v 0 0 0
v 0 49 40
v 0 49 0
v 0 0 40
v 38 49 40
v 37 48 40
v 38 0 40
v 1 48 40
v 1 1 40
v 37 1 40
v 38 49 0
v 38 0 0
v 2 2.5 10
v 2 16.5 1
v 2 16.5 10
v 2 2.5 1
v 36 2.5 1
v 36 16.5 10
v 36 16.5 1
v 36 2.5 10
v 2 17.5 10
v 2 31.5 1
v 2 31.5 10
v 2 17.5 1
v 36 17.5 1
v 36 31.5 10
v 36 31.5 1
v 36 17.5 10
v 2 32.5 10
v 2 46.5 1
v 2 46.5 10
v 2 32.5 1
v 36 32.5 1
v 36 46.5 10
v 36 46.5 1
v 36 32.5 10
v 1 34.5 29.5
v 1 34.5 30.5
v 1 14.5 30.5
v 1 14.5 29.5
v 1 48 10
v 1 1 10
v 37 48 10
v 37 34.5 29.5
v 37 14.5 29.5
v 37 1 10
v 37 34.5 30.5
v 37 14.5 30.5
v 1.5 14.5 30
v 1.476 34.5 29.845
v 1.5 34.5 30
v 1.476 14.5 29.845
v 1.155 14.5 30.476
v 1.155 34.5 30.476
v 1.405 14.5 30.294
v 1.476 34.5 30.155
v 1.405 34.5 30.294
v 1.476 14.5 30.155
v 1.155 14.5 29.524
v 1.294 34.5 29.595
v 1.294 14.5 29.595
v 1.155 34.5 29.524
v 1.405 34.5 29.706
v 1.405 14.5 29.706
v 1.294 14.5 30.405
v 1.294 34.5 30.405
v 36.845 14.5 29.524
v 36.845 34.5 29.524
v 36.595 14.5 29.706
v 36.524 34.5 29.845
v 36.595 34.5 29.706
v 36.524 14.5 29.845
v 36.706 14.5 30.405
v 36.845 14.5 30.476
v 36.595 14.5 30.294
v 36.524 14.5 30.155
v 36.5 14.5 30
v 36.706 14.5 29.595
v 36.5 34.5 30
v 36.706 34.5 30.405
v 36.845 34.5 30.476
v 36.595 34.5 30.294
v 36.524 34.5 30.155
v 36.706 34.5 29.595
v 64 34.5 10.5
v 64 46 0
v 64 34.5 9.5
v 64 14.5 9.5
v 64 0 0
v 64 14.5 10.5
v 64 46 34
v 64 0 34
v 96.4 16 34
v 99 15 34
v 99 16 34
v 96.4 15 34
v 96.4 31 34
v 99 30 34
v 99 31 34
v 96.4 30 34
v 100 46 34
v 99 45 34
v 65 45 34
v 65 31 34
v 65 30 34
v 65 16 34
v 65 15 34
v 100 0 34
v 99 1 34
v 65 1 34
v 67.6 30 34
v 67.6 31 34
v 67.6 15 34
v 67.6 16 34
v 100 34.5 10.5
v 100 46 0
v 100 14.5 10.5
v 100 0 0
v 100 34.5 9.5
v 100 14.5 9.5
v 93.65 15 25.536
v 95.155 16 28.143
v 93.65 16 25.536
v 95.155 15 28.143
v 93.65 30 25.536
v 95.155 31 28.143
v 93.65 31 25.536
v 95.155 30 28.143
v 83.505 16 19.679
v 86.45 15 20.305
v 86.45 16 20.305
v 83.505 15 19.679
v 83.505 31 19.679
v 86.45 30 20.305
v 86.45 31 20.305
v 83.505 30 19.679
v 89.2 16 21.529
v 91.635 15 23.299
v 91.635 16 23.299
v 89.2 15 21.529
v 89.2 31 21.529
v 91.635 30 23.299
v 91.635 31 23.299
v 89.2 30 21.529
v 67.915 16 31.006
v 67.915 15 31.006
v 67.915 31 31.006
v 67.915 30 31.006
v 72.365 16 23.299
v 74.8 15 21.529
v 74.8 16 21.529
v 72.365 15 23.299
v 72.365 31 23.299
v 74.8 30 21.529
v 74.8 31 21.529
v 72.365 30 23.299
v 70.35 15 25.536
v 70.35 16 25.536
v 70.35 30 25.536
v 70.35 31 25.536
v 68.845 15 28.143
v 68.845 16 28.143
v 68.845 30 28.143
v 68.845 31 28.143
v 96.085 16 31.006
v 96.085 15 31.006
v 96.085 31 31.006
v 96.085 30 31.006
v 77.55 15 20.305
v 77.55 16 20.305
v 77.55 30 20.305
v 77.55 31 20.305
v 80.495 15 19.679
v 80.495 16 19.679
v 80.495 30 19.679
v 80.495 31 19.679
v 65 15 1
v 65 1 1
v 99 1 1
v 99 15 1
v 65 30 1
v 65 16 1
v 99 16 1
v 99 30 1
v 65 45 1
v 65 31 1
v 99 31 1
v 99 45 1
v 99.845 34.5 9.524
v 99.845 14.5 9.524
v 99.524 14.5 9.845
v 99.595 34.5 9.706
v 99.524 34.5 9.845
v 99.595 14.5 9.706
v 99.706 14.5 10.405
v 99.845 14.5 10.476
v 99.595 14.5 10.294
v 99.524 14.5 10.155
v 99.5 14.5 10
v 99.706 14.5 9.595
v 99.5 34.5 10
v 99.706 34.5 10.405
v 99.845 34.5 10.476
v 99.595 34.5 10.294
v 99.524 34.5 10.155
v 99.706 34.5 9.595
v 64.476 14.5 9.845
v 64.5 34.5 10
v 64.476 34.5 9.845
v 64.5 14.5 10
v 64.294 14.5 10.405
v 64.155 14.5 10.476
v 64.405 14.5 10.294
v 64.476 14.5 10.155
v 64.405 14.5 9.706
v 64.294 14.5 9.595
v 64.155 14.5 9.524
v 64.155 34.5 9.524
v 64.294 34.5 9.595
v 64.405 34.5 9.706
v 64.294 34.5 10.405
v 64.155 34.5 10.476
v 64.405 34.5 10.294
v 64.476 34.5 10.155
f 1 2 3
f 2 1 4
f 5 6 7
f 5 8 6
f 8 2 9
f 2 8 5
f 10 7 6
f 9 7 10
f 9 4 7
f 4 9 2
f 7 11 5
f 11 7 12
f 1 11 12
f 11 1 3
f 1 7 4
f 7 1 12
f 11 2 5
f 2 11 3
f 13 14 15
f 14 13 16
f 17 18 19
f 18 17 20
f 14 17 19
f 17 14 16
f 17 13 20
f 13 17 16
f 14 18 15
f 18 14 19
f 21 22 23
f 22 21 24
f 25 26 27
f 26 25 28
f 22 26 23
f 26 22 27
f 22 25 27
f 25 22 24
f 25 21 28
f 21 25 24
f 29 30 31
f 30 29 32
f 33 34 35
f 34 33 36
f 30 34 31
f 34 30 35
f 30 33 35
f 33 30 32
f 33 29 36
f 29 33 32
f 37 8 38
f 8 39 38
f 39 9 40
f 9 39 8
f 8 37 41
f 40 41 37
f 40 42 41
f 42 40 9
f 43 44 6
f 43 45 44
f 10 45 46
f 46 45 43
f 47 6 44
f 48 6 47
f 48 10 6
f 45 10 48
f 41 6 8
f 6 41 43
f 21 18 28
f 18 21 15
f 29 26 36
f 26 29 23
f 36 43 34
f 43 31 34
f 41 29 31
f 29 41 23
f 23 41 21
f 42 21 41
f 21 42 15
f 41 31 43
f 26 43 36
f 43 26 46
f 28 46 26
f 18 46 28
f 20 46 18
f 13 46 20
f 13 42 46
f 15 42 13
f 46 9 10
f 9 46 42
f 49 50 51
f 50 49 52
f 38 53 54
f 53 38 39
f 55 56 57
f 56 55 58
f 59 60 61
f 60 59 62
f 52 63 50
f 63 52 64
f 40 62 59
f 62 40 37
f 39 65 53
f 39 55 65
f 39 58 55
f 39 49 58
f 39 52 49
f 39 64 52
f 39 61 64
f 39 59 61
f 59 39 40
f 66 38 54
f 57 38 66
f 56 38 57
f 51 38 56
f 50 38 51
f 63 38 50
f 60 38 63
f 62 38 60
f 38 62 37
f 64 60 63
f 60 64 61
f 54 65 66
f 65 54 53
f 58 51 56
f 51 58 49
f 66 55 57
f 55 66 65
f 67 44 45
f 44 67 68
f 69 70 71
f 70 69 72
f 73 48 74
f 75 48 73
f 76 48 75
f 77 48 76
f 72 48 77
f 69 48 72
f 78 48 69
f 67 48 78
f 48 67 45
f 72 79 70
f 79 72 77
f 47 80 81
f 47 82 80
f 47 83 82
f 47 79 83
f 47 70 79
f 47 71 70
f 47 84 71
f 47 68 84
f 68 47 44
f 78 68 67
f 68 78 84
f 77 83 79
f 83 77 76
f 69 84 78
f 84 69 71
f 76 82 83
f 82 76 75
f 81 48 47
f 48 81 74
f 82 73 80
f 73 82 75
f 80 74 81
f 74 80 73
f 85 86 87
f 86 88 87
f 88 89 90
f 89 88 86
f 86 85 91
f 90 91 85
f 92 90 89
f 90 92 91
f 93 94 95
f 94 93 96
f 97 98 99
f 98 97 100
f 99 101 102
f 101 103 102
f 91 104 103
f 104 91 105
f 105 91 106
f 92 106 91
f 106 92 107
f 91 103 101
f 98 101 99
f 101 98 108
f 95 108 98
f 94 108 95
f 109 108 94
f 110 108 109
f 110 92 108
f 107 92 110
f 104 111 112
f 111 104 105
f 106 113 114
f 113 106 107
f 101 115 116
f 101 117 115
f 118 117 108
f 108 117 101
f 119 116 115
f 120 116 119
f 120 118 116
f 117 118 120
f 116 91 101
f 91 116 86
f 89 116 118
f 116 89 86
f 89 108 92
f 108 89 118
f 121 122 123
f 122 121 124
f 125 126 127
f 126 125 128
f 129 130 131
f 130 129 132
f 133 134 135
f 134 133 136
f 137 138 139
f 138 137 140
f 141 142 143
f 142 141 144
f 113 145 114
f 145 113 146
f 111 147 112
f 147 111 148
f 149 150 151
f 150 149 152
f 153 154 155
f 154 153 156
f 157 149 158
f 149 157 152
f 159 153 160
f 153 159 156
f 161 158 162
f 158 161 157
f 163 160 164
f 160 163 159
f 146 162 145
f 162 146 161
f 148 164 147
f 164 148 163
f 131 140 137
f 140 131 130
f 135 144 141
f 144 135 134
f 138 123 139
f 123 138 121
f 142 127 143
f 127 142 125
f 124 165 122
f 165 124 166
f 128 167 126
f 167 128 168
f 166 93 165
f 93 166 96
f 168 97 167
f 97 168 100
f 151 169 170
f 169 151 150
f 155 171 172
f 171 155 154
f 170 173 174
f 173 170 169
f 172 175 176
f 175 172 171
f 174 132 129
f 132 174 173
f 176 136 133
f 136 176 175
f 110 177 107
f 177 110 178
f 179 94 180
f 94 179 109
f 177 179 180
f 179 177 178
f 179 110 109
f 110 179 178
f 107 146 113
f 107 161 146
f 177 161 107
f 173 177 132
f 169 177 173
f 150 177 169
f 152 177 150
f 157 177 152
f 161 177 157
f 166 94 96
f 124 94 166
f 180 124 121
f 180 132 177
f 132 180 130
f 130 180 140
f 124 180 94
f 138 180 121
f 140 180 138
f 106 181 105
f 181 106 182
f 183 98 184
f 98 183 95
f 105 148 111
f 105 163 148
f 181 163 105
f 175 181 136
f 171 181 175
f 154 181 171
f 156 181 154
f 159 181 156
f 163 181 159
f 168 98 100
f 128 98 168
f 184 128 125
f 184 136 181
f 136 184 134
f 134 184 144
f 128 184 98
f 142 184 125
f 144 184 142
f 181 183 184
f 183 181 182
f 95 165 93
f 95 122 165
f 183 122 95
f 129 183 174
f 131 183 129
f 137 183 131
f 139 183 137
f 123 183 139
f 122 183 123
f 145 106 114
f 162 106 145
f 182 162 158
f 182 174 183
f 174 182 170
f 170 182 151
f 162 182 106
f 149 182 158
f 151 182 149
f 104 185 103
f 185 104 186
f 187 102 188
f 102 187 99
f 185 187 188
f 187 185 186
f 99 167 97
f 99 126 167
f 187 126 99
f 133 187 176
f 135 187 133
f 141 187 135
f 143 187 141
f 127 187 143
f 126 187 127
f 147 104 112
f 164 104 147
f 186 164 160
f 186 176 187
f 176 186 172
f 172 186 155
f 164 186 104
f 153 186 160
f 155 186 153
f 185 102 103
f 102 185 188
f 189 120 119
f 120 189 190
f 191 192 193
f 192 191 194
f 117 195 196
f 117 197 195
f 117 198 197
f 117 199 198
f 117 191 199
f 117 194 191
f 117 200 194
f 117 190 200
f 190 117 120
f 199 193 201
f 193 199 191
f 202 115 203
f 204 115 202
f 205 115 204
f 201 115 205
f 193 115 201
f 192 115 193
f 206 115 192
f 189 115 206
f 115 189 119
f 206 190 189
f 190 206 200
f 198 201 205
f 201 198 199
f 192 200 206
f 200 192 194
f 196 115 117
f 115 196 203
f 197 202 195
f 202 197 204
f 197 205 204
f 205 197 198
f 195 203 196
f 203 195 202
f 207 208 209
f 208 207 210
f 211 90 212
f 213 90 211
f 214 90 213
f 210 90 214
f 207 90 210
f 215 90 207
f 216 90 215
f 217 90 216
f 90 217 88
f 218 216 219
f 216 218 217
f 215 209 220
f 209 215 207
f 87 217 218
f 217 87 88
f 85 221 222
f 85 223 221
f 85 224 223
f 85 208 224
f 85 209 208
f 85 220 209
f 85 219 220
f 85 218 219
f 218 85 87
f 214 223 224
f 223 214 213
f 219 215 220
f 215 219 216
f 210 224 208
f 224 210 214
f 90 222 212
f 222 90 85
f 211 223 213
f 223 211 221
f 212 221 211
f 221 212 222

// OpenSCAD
/* [Dimensions] */
// Batteries Measures of 34x14x42 mm for GoPro10
// Battery depth
BATDEPTH = 14;// [10:20]
// Battery width
WIDTH = 34;//[10:60]
// Thickness of walls
THICK = 1; //[1:4]
// height of top/bottom
HEIGHT = 40; //[20:50]
// Number of batteries
BATTERY_NO = 3;//[1:8]

// Create TOP
CREATE_TOP = true;//[false:true]
// Create Bottom
CREATE_BOTTOM = true;//[false:true]

// -----------------------------
// Define Modules
// -----------------------------

module body(width, length, heigth, thickness){
difference() {
cube([width,length,heigth]);//Base
//translate([0,01,0])
    

//translate([THICK,THICK,THICK])cube([34,14,42]);
//translate([THICK,THICK+16,THICK])cube([34,14,42]);
//translate([THICK,THICK+16+16,THICK])cube([34,14,42]);


//Middle Cut Out
translate([width/2,(length/2),heigth])scale([01,1.2])rotate([90,0,0])cylinder(  length/1.5, d=width*0.8, center=true);
    }
}

module batterys(number, thick, width, depth, height){
    for (i = [0 : number-1]){
        translate([thick,thick+(i*(thick+depth)),thick])cube([width,depth,height]);
        }
    }
    
 

// -----------------------------
// Put Components together
// -----------------------------

// Top Part
if (CREATE_TOP == true){
difference() {
body(WIDTH+4*THICK,4*THICK+BATTERY_NO*(BATDEPTH+THICK),HEIGHT,THICK);

// Batteries Measures of 34x14x42 mm for GoPro10
translate([THICK,THICK*1.5,0])batterys(BATTERY_NO, THICK, WIDTH,BATDEPTH,42);    

// Outer-Joint    
translate([THICK*1.0,THICK*1.0,HEIGHT/4])cube([WIDTH+THICK*2,THICK*2+BATTERY_NO*(BATDEPTH+THICK),HEIGHT-THICK]);
    }

// Lock
translate([1.0,(4*THICK+BATTERY_NO*(BATDEPTH+THICK)-20)/2,HEIGHT-10])rotate([270,0,0])cylinder(h=20, r= 0.5, $fn=20);

translate([WIDTH+4*THICK-1.0,(4*THICK+BATTERY_NO*(BATDEPTH+THICK)-20)/2,HEIGHT-10])rotate([270,0,0])cylinder(h=20, r= 0.5, $fn=20);
}

// Bottom Part
if (CREATE_BOTTOM == true){

translate([WIDTH+30,(0),0])difference() {
body(WIDTH+2*THICK,THICK+BATTERY_NO*(BATDEPTH+THICK),HEIGHT*4/5+2,THICK);//Bottom has 4/5 of Battery, so they stand out. Additional added tolerance.

// Lock
translate([WIDTH+2.0,(4*THICK+BATTERY_NO*(BATDEPTH+THICK)-20)/2,10])rotate([270,0,0])cylinder(h=20, r= 0.5, $fn=20);

translate([WIDTH-4-30*THICK+0.0,(4*THICK+BATTERY_NO*(BATDEPTH+THICK)-20)/2,10])rotate([270,0,0])cylinder(h=20, r= 0.5, $fn=20);

// Batteries Measures of 34x14x42 mm for GoPro10
batterys(BATTERY_NO, THICK, WIDTH,BATDEPTH,HEIGHT);    



}


   }
